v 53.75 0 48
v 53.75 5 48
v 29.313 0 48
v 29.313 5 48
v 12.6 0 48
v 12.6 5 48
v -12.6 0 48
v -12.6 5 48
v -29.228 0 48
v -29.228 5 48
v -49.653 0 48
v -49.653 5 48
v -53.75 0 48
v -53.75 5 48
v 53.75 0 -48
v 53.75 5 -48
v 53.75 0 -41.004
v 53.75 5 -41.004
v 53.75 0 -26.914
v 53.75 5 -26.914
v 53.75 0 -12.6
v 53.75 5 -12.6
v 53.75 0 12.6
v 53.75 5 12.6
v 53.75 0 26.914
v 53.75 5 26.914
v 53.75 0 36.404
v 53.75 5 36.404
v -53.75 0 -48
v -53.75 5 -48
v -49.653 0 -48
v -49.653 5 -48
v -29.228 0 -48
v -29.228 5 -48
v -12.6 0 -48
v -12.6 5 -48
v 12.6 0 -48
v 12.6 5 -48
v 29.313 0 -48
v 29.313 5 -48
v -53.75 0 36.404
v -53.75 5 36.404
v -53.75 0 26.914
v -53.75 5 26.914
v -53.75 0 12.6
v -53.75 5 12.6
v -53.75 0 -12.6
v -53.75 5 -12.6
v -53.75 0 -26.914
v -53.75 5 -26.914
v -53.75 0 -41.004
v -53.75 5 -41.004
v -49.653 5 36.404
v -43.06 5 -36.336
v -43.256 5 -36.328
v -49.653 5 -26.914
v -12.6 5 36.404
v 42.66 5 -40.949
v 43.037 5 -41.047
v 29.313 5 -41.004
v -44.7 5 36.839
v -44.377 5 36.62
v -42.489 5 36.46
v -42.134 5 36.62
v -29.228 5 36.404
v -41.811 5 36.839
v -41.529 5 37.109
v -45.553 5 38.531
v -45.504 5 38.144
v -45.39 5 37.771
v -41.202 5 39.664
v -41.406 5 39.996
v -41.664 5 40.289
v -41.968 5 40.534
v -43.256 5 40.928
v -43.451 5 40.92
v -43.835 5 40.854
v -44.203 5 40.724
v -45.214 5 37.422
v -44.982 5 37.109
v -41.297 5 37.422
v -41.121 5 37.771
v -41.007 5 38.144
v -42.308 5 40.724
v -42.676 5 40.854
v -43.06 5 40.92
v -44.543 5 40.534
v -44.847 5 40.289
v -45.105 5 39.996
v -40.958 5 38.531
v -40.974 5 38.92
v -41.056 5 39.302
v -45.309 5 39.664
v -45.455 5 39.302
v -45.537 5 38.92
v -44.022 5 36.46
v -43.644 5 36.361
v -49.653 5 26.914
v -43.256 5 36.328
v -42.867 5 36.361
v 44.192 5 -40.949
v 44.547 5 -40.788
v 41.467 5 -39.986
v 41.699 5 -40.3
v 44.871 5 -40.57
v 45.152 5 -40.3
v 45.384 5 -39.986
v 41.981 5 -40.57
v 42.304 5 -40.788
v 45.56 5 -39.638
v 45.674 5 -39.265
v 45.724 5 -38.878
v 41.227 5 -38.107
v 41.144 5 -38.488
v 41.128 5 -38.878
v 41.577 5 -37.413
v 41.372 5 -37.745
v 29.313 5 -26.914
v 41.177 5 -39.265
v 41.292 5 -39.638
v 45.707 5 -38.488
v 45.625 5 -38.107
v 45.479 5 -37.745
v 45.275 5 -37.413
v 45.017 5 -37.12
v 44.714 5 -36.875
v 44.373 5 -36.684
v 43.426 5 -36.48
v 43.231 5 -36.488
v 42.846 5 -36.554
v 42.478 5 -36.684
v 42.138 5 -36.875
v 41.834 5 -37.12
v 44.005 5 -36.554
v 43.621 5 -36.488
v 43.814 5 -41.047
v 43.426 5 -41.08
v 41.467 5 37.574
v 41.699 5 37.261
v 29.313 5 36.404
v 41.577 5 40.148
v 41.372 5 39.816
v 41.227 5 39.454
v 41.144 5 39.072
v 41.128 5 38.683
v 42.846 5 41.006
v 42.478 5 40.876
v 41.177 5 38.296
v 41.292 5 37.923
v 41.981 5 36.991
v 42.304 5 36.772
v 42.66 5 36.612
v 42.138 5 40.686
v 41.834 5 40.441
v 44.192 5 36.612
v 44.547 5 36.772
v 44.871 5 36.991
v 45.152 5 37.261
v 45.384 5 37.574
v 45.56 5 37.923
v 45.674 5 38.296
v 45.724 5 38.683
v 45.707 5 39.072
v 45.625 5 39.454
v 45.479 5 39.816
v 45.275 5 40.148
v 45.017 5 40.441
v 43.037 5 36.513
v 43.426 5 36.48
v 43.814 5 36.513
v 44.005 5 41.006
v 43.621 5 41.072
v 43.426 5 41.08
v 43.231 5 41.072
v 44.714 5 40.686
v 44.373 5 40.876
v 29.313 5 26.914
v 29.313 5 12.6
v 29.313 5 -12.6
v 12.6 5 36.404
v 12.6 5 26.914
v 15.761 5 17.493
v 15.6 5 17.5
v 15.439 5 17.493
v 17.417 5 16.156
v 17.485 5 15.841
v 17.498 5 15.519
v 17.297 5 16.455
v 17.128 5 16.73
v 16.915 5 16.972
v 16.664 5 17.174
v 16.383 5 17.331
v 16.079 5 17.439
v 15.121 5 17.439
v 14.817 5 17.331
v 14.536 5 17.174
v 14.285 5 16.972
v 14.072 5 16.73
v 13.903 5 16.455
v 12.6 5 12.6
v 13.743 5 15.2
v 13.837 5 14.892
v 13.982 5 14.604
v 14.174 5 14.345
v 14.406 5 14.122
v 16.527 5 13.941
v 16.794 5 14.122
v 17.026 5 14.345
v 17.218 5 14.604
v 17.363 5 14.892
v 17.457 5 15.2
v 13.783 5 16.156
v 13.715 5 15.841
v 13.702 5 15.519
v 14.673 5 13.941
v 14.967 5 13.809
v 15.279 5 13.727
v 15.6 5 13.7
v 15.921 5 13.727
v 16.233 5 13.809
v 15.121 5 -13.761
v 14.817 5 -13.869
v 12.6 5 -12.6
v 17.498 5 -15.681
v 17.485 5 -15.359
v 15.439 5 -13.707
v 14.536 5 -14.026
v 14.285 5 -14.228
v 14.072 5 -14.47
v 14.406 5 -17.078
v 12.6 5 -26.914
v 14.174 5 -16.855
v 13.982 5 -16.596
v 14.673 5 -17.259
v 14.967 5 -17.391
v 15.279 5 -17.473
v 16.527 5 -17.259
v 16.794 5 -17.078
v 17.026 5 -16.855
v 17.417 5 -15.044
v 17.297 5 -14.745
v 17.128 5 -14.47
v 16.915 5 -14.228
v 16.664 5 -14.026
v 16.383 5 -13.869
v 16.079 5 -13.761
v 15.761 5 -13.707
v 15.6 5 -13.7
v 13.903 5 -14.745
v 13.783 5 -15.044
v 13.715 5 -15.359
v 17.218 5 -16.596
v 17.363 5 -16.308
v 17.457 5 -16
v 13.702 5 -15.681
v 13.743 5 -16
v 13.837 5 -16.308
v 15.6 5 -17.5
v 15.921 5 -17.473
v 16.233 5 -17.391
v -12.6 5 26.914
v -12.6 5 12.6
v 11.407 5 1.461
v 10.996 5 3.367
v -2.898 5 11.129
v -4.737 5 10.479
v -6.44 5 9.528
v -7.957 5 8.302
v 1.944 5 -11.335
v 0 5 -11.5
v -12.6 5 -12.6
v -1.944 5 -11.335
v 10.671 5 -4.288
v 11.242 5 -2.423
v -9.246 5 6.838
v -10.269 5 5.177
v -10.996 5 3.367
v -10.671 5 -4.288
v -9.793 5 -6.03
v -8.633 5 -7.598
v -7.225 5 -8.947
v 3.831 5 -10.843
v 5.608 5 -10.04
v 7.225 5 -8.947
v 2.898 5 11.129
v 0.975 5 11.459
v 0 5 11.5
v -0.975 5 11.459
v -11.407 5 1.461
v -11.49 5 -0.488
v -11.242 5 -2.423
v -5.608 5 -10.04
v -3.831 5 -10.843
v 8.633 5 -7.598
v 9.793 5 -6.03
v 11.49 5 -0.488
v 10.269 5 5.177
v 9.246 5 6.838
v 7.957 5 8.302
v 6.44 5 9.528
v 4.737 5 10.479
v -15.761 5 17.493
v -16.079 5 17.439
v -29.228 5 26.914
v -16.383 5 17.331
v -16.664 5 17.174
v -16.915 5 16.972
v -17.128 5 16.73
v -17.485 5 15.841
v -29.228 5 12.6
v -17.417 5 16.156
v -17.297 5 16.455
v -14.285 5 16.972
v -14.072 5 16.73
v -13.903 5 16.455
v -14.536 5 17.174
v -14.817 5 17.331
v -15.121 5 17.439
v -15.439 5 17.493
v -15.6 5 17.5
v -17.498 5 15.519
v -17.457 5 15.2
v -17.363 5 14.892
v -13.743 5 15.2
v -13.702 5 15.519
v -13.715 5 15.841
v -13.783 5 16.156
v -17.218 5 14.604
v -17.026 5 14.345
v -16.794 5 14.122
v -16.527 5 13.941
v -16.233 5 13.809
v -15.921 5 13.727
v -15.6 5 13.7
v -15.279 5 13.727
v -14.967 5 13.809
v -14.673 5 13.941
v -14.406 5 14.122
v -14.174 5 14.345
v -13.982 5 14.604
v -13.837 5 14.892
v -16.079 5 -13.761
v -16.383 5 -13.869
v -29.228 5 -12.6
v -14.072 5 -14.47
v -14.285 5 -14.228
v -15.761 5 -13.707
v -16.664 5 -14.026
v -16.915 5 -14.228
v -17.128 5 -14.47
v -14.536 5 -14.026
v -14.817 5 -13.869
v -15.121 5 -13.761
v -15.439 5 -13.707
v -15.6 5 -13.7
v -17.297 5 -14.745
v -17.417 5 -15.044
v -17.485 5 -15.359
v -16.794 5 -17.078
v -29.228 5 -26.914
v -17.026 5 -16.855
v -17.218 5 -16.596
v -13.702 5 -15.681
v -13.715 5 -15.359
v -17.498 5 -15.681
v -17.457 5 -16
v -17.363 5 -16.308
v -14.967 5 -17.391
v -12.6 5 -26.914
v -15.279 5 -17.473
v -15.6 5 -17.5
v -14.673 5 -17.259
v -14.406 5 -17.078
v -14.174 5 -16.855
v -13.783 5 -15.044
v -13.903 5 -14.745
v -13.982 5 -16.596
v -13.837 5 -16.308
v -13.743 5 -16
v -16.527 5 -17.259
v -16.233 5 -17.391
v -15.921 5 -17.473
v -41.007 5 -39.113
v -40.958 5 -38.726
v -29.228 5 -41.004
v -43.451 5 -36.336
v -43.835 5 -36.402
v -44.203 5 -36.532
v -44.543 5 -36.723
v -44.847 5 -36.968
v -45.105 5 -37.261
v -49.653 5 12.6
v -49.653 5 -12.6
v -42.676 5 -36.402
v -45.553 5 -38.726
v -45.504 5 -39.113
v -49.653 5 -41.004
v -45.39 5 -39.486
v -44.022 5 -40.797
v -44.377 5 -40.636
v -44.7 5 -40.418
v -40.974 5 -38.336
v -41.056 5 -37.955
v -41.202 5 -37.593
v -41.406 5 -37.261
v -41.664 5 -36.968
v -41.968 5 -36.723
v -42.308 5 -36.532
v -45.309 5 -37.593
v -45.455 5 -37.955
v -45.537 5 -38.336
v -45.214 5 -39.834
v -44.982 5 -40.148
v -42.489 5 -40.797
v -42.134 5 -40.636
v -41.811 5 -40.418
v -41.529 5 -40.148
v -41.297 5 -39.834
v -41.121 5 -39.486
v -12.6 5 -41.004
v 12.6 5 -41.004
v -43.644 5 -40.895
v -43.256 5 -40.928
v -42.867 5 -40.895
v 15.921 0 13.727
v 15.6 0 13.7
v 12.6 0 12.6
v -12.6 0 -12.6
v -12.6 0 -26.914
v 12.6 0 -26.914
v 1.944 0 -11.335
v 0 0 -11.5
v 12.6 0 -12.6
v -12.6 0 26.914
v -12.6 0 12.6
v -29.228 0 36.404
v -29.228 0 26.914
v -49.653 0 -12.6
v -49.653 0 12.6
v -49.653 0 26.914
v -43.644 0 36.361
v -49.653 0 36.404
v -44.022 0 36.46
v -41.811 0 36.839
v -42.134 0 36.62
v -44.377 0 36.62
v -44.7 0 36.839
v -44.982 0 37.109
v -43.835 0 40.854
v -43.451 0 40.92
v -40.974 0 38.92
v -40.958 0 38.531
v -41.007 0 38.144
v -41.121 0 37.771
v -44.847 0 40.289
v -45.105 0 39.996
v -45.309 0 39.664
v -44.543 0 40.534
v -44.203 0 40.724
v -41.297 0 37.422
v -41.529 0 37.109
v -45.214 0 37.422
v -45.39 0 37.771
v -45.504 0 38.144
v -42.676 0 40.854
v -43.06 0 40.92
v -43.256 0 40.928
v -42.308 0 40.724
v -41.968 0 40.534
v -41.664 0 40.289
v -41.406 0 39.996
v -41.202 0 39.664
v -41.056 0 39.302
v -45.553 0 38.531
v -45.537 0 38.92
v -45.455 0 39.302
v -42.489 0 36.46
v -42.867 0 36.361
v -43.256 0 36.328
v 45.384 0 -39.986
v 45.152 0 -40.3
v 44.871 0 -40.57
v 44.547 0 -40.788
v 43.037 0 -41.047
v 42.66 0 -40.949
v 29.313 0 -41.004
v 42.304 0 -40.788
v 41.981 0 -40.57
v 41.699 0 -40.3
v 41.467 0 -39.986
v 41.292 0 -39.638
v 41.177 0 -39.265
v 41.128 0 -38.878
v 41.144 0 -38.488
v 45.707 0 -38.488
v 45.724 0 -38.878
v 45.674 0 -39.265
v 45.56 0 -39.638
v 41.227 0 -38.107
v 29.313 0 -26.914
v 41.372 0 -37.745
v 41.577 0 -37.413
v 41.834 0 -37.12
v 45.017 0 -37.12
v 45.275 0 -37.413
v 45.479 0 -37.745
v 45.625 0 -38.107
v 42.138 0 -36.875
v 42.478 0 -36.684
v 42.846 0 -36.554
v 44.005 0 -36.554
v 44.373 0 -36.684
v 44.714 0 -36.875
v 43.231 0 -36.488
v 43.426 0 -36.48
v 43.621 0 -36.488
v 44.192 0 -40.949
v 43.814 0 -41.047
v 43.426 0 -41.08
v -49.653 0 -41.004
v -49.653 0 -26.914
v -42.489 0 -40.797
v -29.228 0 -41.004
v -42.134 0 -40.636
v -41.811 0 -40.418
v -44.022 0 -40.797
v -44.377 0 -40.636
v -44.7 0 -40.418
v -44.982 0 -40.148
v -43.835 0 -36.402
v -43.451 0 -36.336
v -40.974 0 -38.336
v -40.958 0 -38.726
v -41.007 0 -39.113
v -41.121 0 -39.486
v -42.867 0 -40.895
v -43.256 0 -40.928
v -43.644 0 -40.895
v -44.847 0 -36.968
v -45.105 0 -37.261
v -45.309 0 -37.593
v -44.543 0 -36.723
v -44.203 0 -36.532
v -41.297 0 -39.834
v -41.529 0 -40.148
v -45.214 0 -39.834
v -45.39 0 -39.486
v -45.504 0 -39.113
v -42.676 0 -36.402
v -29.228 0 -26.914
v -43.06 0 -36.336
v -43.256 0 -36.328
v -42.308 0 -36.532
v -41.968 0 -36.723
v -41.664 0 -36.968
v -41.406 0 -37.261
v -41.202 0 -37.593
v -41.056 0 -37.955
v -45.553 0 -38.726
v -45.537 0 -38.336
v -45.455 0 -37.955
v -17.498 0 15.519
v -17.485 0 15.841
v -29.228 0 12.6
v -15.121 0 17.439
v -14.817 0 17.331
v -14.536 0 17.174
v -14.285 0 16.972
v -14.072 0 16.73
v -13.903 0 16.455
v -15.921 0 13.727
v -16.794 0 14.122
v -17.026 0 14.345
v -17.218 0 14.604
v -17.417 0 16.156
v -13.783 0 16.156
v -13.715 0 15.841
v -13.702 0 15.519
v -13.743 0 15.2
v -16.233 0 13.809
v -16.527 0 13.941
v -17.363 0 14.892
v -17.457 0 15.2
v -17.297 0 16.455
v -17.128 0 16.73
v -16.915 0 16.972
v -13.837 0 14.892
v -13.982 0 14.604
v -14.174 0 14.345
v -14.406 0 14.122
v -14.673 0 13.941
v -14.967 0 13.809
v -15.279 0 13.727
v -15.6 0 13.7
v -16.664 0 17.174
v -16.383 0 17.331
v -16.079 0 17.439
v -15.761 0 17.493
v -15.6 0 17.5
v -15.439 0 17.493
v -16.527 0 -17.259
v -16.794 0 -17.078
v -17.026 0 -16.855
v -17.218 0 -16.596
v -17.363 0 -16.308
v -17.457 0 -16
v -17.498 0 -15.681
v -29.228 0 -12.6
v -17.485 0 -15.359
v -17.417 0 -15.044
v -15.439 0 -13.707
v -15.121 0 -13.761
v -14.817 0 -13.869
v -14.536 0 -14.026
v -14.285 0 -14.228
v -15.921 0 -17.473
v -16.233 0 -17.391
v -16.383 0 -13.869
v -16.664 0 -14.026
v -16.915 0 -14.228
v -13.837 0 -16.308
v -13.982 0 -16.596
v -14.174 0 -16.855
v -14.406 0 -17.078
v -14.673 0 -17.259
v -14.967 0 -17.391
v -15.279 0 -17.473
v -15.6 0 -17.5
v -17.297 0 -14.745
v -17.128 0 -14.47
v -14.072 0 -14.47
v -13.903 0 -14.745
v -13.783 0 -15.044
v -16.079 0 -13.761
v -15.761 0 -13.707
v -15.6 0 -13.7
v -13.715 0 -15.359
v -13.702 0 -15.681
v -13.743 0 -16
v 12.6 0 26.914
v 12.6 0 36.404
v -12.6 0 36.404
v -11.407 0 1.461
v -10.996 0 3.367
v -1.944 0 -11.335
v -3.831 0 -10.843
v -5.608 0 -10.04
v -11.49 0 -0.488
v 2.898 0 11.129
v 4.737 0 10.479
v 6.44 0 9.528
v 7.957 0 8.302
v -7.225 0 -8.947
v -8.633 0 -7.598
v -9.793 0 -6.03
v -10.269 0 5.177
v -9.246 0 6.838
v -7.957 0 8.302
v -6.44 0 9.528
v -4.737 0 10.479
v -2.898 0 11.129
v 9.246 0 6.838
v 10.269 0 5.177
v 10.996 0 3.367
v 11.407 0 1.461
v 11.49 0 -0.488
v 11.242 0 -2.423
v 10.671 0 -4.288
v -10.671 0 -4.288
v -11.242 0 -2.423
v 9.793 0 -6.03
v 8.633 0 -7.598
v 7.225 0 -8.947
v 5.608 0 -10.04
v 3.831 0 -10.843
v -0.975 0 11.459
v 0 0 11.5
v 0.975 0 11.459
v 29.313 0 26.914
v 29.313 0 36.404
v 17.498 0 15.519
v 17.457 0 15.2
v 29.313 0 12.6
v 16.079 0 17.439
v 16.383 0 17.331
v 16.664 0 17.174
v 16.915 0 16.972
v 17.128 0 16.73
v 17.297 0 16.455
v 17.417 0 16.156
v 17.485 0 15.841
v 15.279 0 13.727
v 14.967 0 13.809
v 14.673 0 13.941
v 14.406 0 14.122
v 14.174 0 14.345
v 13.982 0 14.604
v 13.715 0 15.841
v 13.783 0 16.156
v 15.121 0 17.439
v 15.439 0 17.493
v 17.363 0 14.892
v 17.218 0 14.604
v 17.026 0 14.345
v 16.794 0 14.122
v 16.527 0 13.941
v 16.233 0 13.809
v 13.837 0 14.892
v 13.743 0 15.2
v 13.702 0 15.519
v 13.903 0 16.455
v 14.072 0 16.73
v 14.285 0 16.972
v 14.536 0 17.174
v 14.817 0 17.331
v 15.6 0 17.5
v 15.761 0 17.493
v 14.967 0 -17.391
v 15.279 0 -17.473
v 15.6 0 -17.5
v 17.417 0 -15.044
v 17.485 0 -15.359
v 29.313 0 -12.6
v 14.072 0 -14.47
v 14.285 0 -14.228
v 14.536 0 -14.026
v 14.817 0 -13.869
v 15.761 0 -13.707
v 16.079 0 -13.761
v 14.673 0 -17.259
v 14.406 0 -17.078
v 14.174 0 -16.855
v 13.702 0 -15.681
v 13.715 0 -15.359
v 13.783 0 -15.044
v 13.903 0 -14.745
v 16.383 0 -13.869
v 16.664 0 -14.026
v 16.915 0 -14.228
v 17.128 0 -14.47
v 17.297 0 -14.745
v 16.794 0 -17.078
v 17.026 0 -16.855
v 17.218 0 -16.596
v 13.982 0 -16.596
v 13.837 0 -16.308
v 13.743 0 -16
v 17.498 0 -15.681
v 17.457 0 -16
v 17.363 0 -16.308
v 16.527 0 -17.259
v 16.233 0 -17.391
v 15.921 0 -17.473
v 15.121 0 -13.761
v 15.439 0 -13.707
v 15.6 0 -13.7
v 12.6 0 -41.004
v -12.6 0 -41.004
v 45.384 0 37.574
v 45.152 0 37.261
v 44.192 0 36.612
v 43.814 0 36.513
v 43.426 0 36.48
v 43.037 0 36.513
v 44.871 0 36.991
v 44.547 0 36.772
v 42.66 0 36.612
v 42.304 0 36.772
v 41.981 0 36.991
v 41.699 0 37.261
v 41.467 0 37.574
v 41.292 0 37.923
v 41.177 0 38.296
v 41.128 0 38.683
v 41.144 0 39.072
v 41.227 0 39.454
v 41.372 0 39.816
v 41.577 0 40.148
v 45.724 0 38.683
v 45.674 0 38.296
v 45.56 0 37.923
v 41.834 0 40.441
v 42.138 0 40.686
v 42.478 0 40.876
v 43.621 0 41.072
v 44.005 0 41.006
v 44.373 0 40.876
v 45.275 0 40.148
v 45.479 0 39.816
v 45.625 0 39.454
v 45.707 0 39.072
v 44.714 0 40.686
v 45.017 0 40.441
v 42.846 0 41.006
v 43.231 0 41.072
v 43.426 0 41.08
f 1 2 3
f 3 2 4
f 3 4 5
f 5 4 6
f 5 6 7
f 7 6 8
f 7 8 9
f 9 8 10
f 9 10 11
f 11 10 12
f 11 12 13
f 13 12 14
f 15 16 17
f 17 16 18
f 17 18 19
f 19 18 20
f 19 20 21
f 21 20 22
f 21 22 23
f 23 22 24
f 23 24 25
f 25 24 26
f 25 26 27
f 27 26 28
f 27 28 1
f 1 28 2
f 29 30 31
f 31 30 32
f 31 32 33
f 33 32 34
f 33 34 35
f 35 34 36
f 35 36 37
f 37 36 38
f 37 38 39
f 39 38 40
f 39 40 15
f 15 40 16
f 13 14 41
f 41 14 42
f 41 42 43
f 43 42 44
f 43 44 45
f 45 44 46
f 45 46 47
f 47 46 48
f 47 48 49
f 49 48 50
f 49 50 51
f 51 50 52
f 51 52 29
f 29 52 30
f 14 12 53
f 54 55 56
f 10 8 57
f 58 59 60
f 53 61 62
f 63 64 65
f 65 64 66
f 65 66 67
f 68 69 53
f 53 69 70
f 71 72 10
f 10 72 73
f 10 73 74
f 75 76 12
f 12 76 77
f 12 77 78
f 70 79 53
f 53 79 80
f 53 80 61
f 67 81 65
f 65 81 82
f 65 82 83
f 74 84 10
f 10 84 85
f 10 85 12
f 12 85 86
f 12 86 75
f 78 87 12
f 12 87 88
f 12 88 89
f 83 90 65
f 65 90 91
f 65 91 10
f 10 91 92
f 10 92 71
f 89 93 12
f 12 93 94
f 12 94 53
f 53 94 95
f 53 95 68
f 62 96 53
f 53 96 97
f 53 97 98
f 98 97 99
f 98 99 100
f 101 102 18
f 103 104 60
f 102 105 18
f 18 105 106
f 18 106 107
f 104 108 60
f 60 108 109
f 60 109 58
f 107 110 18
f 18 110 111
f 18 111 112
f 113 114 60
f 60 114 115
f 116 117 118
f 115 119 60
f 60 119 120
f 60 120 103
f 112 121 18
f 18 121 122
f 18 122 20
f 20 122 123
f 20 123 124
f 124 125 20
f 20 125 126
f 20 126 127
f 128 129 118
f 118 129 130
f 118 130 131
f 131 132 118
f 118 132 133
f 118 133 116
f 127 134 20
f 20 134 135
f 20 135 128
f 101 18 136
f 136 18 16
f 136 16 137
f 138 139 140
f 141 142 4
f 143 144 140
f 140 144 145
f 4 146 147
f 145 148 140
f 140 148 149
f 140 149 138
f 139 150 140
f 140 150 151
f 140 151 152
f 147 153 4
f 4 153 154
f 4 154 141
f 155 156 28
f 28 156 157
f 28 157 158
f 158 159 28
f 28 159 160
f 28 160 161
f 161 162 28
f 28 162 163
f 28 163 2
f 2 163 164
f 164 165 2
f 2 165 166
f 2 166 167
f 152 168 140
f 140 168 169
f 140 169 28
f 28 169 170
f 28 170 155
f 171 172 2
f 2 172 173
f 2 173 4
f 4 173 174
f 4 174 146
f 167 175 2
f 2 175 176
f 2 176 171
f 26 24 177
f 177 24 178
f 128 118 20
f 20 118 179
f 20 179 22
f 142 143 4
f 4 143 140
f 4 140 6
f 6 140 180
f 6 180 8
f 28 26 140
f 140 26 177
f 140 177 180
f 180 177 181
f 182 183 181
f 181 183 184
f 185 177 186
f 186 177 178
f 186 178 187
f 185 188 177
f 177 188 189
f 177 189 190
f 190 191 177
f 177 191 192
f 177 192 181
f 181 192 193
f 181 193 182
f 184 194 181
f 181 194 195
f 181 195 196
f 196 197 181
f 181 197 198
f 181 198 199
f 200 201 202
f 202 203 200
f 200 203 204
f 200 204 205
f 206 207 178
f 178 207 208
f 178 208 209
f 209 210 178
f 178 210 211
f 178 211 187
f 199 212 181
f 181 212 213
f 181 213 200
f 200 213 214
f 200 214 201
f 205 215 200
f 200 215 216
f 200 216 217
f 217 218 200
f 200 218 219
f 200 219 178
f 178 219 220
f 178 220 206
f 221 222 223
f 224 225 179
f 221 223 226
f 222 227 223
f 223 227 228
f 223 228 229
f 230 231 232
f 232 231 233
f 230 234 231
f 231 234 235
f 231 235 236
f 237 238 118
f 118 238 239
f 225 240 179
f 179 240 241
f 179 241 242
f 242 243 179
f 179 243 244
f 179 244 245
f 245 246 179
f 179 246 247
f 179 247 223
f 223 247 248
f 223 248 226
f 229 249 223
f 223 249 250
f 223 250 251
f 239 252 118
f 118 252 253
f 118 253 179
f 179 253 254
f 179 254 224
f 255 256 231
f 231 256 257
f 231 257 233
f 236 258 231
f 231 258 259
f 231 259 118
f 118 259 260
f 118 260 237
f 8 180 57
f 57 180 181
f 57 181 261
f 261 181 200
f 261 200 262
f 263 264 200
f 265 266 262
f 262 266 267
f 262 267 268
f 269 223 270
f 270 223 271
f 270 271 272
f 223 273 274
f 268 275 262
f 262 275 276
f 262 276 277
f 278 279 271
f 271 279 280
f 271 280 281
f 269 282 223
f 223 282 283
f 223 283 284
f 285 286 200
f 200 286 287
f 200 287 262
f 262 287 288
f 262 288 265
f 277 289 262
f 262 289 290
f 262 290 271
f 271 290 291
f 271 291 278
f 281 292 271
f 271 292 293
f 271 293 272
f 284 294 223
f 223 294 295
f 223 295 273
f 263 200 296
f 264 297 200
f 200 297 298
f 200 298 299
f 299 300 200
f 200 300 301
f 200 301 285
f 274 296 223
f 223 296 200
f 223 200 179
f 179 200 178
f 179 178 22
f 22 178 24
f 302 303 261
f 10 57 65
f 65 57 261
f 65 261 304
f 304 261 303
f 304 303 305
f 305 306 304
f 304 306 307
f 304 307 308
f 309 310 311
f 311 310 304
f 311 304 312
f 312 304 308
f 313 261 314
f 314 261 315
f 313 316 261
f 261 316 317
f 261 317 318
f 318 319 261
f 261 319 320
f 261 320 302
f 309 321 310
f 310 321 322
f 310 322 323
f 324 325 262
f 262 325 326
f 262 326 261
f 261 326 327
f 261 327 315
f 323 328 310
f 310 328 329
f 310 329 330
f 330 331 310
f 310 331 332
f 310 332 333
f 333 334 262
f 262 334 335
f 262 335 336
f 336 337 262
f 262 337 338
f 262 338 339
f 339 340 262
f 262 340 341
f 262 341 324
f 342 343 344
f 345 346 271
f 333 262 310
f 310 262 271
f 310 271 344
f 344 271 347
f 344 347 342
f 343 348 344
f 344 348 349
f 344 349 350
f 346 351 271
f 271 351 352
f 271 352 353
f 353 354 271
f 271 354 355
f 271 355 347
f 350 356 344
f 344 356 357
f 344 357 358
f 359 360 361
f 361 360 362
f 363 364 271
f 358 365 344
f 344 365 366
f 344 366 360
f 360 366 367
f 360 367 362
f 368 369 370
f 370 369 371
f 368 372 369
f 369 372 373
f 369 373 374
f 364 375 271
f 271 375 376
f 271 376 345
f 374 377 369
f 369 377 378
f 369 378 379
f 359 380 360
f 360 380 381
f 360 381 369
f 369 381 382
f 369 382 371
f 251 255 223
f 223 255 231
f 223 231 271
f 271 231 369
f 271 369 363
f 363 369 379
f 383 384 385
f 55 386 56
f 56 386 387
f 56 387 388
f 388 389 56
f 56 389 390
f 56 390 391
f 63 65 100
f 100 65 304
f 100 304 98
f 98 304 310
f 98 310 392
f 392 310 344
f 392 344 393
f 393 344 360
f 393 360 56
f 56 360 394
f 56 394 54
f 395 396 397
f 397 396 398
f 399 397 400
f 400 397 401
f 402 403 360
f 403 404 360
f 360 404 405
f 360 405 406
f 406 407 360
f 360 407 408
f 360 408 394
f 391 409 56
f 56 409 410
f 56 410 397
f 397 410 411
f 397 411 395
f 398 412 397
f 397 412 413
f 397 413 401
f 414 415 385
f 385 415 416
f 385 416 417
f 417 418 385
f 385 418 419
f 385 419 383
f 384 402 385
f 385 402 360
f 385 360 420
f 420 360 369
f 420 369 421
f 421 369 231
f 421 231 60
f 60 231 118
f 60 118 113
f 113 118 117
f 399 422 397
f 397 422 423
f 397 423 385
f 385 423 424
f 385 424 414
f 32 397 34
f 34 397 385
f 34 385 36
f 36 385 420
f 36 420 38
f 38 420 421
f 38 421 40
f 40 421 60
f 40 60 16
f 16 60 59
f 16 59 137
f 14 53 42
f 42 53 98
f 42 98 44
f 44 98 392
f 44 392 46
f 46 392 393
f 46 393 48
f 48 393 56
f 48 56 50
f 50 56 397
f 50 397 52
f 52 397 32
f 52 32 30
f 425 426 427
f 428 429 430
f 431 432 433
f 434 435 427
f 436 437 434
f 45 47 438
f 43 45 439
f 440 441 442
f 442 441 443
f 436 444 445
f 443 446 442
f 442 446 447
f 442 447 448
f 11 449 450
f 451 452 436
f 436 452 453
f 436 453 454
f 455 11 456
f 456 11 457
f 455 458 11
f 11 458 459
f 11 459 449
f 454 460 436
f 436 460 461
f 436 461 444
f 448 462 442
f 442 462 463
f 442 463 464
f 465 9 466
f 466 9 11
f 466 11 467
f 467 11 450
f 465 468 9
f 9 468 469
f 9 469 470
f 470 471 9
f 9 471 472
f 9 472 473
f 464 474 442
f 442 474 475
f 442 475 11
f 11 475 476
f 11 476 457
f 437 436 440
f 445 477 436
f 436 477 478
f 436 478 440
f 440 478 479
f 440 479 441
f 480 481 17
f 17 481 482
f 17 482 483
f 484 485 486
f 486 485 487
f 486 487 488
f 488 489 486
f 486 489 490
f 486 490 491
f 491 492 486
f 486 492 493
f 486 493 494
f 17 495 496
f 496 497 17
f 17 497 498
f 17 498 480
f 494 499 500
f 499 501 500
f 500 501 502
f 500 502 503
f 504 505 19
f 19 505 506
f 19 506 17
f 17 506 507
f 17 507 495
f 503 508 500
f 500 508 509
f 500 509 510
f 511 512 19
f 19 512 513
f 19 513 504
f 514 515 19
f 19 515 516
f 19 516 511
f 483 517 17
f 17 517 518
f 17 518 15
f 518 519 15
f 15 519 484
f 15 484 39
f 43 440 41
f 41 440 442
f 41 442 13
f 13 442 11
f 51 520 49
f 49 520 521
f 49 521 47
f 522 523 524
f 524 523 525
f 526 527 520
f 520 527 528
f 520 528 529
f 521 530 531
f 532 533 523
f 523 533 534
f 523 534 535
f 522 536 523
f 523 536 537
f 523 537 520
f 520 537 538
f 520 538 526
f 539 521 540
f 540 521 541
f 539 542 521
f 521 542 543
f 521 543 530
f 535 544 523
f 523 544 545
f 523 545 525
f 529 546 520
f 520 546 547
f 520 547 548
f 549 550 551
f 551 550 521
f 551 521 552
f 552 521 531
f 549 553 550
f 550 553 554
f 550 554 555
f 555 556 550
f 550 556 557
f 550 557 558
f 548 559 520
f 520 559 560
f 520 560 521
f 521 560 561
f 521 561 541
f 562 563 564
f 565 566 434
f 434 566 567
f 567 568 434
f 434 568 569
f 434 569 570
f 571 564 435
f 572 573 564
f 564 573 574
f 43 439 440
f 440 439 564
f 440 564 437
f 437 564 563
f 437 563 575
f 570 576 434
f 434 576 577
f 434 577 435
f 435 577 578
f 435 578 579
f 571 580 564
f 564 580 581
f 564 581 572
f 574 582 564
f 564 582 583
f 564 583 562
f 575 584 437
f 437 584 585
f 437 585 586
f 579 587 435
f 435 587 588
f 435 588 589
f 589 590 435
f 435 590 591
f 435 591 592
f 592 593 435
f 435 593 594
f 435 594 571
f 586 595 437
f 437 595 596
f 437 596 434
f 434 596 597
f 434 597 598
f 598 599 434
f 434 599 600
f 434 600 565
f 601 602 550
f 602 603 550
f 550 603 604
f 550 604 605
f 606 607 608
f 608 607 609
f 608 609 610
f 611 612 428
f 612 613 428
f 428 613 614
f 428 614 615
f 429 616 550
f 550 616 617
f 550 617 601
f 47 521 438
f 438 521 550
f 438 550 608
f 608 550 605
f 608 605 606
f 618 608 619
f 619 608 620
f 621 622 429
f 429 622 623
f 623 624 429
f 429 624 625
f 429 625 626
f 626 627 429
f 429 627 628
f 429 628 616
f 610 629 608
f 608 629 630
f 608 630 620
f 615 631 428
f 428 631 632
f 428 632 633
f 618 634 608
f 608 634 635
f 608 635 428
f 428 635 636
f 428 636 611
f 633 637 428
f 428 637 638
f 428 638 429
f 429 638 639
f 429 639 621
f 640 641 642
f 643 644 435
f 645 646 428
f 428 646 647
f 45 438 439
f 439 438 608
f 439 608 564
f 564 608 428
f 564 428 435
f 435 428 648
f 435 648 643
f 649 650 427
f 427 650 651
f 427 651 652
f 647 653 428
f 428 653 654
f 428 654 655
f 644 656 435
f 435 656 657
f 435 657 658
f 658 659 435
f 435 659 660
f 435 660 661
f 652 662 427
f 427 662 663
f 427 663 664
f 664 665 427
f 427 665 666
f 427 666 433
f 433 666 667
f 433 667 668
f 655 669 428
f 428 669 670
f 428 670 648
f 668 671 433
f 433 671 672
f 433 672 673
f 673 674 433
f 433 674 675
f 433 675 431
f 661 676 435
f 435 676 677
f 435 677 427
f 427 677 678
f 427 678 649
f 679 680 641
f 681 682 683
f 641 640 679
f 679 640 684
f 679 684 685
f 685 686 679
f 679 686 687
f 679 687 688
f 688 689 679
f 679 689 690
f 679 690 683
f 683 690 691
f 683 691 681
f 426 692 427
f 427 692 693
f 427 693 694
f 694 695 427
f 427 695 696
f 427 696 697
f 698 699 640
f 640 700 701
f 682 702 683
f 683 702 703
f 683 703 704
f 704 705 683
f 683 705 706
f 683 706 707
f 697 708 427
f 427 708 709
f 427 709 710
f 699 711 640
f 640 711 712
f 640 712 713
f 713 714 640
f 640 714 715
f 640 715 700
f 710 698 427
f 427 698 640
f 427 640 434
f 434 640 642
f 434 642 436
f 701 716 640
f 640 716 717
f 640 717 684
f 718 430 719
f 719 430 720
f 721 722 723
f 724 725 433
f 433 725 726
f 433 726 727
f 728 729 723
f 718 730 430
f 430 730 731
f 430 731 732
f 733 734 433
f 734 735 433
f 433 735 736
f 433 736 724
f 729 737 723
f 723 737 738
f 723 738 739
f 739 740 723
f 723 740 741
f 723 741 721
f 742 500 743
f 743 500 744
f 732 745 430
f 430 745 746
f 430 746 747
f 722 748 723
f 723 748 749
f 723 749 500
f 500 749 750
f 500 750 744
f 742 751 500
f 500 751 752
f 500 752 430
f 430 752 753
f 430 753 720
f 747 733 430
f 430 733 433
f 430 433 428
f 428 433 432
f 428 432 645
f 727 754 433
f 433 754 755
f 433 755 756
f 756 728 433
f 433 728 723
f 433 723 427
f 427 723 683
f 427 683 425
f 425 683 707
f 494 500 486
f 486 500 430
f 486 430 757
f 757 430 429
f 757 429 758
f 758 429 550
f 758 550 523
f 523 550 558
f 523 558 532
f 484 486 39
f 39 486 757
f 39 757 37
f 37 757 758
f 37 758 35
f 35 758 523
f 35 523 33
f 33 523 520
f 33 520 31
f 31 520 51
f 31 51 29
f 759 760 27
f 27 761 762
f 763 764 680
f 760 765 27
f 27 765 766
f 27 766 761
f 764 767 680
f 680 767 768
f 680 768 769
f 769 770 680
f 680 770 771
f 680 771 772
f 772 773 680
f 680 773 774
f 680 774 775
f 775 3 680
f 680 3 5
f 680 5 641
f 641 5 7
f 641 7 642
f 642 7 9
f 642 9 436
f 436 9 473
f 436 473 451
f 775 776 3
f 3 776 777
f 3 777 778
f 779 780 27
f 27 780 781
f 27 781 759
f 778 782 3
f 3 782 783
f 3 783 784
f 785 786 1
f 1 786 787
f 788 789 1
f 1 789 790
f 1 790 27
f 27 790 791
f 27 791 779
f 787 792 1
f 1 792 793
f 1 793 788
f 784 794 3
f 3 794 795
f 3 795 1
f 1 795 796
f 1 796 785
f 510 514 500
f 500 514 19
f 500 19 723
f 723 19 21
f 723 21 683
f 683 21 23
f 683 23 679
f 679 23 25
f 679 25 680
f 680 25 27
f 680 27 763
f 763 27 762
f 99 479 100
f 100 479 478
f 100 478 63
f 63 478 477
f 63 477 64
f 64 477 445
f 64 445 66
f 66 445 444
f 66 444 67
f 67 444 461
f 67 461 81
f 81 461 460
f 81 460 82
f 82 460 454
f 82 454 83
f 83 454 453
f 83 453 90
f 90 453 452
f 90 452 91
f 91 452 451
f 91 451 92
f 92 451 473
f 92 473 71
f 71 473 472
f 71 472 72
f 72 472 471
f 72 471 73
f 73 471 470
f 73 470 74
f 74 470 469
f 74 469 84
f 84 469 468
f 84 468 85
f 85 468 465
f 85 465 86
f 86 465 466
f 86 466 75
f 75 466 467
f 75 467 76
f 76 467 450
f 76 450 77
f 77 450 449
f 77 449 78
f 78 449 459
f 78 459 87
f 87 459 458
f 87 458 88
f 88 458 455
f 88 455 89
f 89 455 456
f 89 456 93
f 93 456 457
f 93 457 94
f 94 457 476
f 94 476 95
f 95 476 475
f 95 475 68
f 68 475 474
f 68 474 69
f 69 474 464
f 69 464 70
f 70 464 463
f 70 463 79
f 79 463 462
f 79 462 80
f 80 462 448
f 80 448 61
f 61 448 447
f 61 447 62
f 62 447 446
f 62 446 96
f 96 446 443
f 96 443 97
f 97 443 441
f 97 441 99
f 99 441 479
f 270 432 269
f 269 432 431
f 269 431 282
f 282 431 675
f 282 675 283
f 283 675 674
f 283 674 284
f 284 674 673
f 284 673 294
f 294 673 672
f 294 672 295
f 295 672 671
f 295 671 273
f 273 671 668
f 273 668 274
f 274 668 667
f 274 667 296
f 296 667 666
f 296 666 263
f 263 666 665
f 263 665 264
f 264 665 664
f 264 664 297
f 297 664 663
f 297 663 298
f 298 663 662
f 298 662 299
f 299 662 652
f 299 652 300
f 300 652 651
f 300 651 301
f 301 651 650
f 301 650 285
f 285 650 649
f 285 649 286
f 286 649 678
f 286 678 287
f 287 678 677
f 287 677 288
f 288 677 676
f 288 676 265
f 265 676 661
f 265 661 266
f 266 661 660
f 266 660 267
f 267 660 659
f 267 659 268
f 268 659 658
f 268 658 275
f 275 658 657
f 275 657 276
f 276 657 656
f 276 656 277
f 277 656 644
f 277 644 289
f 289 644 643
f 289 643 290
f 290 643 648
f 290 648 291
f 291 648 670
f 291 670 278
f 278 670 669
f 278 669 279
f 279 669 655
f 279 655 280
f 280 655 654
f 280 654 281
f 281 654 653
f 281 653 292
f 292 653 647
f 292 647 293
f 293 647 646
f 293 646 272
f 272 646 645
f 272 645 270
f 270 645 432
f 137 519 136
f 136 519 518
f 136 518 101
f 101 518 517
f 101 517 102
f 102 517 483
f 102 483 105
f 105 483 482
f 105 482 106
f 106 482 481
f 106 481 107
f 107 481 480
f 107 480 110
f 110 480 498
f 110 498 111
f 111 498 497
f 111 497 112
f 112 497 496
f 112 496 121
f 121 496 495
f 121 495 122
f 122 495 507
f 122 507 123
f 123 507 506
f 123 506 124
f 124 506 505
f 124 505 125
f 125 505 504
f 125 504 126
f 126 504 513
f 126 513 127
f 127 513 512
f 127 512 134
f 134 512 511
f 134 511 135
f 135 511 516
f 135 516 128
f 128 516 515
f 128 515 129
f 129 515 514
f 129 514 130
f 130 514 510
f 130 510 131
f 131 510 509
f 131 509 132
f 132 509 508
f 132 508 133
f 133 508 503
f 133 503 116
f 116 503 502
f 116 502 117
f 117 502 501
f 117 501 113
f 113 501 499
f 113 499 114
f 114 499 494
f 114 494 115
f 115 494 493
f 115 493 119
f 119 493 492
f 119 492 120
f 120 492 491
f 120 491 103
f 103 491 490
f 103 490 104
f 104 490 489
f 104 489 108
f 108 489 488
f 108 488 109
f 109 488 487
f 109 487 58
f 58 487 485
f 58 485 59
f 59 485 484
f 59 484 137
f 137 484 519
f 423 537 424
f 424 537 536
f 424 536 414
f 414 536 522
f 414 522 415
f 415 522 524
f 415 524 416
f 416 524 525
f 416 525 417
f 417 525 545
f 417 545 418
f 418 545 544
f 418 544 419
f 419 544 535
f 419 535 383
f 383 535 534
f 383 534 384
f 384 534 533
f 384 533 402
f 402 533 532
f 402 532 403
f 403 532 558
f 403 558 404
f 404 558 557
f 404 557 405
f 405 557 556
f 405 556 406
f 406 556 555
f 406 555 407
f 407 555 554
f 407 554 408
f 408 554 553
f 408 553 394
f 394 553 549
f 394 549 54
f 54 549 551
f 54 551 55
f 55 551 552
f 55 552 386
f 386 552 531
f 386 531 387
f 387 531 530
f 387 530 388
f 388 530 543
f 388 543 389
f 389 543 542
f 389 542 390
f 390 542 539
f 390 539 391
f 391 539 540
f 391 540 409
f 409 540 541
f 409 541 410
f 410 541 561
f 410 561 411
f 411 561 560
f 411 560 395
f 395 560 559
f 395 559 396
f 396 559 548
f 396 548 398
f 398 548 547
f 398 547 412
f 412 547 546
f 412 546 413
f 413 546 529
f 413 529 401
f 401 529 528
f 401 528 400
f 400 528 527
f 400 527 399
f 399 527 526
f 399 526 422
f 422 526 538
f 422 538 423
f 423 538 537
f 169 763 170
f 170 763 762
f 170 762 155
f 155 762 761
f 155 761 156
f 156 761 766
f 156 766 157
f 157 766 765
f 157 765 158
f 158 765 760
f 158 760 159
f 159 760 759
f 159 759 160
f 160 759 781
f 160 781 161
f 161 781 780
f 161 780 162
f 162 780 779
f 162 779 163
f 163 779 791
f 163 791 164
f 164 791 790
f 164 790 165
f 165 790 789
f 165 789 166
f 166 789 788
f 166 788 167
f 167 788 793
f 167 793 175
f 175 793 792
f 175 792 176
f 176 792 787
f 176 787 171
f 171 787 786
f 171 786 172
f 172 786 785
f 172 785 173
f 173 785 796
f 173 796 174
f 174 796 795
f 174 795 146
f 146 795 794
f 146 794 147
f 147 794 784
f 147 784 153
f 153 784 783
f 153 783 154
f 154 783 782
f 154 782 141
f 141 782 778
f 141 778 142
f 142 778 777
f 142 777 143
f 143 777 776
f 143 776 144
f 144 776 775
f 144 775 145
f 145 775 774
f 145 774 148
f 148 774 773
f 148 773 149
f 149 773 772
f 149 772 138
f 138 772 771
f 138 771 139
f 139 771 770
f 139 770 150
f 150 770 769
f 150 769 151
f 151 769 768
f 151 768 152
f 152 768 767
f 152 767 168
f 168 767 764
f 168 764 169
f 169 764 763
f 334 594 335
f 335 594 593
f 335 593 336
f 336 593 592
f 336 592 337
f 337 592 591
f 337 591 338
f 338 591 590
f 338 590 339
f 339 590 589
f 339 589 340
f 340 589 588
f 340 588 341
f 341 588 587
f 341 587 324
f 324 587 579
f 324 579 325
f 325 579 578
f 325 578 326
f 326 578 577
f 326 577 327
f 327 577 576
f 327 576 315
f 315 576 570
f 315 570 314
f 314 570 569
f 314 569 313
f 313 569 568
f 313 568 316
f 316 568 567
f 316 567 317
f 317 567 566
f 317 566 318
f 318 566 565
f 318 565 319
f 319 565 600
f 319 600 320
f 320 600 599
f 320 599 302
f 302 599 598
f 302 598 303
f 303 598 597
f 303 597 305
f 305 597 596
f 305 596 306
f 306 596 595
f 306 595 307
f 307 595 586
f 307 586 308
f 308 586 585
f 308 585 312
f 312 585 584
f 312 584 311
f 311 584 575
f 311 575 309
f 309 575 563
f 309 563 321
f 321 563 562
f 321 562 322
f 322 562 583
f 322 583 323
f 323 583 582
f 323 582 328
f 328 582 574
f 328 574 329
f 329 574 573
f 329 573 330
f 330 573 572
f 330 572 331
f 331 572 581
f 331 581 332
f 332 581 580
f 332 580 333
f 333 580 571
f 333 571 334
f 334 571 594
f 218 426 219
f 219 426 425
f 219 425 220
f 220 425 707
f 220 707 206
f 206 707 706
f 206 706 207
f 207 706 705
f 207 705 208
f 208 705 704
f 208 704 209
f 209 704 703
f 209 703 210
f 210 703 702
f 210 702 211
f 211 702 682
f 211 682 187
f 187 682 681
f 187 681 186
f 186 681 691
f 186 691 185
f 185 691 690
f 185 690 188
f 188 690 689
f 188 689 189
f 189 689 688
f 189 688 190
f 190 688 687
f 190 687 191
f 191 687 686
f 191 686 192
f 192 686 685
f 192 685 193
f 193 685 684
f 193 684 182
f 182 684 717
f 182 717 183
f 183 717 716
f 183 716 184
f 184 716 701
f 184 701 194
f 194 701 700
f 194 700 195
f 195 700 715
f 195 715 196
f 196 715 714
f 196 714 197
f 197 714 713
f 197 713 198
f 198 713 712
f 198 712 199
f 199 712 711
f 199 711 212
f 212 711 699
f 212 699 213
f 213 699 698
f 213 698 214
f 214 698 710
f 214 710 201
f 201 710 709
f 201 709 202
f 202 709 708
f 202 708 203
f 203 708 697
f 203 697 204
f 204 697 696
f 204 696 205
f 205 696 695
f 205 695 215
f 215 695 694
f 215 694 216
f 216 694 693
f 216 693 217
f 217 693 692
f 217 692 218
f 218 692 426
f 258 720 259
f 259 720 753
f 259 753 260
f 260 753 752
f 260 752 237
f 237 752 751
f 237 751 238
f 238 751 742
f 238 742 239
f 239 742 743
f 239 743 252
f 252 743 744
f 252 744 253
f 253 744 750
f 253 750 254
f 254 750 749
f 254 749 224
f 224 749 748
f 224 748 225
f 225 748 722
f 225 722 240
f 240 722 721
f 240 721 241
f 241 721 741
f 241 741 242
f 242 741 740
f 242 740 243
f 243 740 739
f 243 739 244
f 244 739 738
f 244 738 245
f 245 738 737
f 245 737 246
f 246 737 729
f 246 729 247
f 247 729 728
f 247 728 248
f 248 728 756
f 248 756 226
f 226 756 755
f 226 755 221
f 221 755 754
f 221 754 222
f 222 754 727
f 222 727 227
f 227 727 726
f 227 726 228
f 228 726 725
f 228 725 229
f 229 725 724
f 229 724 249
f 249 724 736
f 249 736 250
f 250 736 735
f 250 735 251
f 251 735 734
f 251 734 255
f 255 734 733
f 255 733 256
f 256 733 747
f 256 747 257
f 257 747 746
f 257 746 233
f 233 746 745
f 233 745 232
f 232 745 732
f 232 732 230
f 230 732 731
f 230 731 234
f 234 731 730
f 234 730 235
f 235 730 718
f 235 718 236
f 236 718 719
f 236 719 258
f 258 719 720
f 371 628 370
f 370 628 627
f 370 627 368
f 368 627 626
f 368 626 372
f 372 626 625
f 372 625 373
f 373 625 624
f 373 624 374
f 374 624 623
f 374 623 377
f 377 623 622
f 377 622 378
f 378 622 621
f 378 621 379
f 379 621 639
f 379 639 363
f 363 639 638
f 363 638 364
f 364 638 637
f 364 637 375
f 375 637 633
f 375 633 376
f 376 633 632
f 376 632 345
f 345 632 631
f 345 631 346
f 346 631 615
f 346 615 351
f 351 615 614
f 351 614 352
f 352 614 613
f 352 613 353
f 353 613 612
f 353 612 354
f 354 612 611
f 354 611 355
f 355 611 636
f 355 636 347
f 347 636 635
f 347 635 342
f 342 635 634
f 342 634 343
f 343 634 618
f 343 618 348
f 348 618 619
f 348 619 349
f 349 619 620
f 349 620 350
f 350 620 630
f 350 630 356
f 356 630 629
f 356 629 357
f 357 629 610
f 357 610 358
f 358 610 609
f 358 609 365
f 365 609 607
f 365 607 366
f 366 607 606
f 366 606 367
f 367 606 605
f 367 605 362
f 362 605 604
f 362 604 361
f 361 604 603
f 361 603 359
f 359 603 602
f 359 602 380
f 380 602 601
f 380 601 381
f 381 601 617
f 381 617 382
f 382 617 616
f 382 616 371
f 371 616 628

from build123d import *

# Parameters (mm, degrees)
SKETCH1_W           = 107.5
SKETCH1_H           = 96
BOSS_EXTRUDE1_DEPTH = 5
SKETCH2_R           = 1.9
SKETCH2_R_2         = 11.5
SKETCH2_R_3         = 2.3
CUT_EXTRUDE3_DEPTH  = 5


with BuildPart() as part:
    # Sketch1 → Boss-Extrude1 (new body)
    with BuildSketch(Plane(origin=(0, 0, 0), x_dir=(1, 0, 0), z_dir=(0, 1, 0))):
        Rectangle(SKETCH1_W, SKETCH1_H)
    extrude(amount=BOSS_EXTRUDE1_DEPTH)

    # Sketch2 → Cut-Extrude3 (cut)
    with BuildSketch(Plane(origin=(0, 0, 0), x_dir=(1, 0, 0), z_dir=(0, 1, 0))):
        with Locations((-15.6, 15.6)):
            Circle(SKETCH2_R)
        with Locations((15.6, 15.6)):
            Circle(SKETCH2_R)
        with Locations((15.6, -15.6)):
            Circle(SKETCH2_R)
        with Locations((-15.6, -15.6)):
            Circle(SKETCH2_R)
        Circle(SKETCH2_R_2)
        with Locations((-43.255523212, -38.628188171)):
            Circle(SKETCH2_R_3)
        with Locations((43.42574654, 38.780201561)):
            Circle(SKETCH2_R_3)
        with Locations((-43.255523212, 38.628188171)):
            Circle(SKETCH2_R_3)
        with Locations((43.42574654, -38.780201561)):
            Circle(SKETCH2_R_3)
    extrude(amount=CUT_EXTRUDE3_DEPTH, mode=Mode.SUBTRACT)


solid = part.part
